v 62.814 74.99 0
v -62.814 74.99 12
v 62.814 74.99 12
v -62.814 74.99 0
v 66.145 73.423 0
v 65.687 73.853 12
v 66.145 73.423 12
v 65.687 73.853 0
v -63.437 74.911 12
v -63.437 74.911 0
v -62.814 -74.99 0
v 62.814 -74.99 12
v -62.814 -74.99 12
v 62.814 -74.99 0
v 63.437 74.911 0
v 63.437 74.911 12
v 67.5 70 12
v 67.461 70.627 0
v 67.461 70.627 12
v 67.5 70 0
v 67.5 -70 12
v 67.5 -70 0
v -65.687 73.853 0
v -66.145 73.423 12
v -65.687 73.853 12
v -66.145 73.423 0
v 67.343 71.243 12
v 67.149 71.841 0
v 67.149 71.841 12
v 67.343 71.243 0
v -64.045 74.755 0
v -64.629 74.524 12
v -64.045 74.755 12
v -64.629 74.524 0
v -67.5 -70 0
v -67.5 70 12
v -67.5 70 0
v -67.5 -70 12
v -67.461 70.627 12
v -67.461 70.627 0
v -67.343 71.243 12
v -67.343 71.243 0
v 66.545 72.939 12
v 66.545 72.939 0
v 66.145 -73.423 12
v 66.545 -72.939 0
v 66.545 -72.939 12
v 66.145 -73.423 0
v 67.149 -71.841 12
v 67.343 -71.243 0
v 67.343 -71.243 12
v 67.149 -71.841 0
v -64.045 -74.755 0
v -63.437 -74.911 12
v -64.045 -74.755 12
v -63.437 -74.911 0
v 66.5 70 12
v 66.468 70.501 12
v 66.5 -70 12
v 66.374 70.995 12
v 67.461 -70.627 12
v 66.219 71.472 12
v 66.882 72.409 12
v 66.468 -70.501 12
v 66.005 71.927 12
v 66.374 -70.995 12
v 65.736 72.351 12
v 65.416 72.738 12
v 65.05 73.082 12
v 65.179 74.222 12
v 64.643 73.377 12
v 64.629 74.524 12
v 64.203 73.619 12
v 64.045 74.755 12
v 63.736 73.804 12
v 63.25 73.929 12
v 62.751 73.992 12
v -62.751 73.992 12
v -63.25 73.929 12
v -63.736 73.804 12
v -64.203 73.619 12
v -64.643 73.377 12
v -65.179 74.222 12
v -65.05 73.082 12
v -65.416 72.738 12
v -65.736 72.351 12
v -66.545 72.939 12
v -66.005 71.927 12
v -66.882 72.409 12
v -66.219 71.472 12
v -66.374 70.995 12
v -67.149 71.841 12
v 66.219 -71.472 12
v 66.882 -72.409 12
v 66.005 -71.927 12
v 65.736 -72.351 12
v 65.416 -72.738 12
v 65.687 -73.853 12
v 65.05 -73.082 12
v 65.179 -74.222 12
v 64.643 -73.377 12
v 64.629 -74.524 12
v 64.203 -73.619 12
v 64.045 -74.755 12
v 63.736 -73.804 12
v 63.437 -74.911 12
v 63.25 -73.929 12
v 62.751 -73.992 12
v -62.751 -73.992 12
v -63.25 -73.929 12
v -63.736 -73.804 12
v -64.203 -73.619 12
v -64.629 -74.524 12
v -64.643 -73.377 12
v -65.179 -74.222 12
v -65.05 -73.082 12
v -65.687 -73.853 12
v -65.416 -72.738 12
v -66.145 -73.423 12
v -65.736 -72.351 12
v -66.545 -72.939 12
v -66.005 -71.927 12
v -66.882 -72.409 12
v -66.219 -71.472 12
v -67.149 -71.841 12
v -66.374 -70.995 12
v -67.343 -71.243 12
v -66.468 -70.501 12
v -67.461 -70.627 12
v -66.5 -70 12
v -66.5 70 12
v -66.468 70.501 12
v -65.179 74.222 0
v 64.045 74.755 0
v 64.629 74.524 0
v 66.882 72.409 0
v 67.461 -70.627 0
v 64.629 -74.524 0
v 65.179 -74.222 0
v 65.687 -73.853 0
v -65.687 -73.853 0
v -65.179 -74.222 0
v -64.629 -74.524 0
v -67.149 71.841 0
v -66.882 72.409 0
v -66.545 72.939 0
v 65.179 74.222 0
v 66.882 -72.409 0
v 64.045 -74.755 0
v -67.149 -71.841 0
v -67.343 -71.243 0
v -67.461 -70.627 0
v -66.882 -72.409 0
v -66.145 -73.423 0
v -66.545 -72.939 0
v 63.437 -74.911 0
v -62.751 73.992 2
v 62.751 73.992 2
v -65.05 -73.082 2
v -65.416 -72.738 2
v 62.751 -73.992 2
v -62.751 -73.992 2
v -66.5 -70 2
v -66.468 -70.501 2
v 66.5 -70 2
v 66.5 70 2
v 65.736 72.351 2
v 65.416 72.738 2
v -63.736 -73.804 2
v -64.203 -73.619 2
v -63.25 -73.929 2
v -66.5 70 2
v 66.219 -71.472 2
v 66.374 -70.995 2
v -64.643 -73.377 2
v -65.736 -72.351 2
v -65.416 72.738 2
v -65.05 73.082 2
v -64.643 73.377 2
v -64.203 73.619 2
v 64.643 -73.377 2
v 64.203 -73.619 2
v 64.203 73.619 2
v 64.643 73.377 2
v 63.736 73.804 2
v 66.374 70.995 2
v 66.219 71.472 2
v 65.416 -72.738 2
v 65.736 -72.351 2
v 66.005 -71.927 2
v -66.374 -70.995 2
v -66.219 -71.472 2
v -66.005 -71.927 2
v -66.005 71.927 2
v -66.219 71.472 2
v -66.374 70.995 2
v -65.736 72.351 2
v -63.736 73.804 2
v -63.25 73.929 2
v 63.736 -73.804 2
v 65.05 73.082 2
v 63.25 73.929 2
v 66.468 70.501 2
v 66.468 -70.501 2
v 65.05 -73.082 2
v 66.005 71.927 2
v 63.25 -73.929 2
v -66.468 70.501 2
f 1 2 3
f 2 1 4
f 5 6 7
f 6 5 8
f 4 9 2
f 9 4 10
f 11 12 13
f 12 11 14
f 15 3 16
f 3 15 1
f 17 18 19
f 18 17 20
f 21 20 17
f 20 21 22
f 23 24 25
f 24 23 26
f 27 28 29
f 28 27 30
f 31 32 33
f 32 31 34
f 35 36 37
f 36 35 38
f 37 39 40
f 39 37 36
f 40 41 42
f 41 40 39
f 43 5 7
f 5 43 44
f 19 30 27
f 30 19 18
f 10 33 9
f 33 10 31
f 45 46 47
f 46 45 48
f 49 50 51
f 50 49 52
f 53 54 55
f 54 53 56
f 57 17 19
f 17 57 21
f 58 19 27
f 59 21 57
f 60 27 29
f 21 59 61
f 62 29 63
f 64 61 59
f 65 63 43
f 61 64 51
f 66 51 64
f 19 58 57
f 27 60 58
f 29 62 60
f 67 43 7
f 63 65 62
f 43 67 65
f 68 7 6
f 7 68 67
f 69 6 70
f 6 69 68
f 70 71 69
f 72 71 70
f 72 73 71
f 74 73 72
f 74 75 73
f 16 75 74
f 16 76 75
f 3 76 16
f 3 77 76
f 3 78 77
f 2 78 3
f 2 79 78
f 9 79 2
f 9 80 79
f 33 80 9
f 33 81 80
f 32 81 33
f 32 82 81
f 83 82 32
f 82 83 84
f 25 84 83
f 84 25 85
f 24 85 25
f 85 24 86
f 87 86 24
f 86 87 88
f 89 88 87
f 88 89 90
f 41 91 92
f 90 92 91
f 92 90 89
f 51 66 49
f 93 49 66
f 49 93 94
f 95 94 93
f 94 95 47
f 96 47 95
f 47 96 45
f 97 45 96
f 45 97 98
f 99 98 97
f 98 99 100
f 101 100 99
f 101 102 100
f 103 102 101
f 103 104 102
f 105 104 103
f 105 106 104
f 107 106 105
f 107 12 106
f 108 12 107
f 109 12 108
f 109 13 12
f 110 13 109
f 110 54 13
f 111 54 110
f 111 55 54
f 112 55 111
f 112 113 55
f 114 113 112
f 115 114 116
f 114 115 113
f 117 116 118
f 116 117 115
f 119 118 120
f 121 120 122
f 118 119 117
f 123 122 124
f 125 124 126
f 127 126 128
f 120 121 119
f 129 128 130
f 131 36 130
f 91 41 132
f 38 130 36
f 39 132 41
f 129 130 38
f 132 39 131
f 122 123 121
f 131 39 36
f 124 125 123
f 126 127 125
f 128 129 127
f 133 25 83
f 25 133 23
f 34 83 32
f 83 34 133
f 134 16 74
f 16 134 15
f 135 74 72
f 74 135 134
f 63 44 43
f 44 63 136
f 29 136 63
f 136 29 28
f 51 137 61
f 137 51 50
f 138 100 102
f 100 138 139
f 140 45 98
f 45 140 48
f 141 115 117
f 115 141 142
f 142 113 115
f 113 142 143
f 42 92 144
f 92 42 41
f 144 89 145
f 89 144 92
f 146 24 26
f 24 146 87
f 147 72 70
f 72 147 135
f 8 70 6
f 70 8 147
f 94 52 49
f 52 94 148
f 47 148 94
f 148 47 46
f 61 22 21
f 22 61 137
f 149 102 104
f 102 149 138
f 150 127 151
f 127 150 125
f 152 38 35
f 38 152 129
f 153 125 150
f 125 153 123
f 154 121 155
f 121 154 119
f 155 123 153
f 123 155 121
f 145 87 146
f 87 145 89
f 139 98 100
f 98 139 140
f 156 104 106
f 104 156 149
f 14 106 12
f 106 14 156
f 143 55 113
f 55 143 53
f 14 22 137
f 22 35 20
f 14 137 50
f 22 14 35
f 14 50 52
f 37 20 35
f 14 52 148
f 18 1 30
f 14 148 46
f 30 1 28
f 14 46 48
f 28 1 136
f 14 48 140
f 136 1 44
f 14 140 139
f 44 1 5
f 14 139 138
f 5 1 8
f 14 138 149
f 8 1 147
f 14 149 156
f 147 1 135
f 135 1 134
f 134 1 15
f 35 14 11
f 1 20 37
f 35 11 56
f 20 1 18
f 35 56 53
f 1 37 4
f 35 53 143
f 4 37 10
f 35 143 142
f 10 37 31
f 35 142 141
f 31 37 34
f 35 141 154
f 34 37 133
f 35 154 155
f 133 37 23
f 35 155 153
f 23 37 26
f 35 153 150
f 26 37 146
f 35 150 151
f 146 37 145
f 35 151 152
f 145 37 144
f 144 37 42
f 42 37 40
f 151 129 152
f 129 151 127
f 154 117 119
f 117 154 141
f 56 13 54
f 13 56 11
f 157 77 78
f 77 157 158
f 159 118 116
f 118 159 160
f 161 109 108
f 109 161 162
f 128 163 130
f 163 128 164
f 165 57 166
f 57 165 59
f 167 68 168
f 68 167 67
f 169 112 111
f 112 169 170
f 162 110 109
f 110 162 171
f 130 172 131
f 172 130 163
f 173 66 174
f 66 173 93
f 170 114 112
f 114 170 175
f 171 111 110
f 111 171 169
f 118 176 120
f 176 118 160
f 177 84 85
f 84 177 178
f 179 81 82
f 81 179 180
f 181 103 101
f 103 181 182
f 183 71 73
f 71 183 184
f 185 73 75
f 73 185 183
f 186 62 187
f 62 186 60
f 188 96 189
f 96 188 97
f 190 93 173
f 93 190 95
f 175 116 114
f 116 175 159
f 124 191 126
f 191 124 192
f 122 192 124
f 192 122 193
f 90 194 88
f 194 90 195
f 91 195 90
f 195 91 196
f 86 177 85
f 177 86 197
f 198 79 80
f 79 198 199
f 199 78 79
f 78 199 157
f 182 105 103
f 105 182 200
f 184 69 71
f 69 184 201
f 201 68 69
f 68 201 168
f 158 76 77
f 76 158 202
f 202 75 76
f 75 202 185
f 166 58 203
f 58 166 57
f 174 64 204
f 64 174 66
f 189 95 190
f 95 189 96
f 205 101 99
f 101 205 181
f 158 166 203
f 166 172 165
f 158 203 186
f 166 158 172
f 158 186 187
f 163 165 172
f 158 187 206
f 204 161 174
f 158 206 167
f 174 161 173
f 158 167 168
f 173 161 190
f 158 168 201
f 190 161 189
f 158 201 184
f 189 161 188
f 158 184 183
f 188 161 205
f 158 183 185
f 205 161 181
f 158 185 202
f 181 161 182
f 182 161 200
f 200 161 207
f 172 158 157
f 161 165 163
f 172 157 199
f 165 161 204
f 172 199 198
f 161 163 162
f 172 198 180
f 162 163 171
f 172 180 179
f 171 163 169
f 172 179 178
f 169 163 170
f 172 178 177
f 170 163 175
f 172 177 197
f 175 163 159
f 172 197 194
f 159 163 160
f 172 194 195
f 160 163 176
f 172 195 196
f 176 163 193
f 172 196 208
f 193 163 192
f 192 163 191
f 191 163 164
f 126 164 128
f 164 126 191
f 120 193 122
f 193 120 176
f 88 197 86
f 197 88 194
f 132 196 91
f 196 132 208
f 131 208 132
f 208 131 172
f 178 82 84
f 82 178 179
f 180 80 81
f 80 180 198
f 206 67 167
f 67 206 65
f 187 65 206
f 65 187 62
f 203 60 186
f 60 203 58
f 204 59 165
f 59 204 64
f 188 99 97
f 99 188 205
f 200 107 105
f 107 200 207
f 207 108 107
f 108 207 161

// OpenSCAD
$fn = 50;


difference() {
	union() {
		hull() {
			translate(v = [-62.5000000000, 70.0000000000, 0]) {
				cylinder(h = 12, r = 5);
			}
			translate(v = [62.5000000000, 70.0000000000, 0]) {
				cylinder(h = 12, r = 5);
			}
			translate(v = [-62.5000000000, -70.0000000000, 0]) {
				cylinder(h = 12, r = 5);
			}
			translate(v = [62.5000000000, -70.0000000000, 0]) {
				cylinder(h = 12, r = 5);
			}
		}
	}
	union() {
		translate(v = [0, 0, 2]) {
			hull() {
				translate(v = [-62.5000000000, 70.0000000000, 0]) {
					cylinder(h = 10, r = 4);
				}
				translate(v = [62.5000000000, 70.0000000000, 0]) {
					cylinder(h = 10, r = 4);
				}
				translate(v = [-62.5000000000, -70.0000000000, 0]) {
					cylinder(h = 10, r = 4);
				}
				translate(v = [62.5000000000, -70.0000000000, 0]) {
					cylinder(h = 10, r = 4);
				}
			}
		}
	}
}
